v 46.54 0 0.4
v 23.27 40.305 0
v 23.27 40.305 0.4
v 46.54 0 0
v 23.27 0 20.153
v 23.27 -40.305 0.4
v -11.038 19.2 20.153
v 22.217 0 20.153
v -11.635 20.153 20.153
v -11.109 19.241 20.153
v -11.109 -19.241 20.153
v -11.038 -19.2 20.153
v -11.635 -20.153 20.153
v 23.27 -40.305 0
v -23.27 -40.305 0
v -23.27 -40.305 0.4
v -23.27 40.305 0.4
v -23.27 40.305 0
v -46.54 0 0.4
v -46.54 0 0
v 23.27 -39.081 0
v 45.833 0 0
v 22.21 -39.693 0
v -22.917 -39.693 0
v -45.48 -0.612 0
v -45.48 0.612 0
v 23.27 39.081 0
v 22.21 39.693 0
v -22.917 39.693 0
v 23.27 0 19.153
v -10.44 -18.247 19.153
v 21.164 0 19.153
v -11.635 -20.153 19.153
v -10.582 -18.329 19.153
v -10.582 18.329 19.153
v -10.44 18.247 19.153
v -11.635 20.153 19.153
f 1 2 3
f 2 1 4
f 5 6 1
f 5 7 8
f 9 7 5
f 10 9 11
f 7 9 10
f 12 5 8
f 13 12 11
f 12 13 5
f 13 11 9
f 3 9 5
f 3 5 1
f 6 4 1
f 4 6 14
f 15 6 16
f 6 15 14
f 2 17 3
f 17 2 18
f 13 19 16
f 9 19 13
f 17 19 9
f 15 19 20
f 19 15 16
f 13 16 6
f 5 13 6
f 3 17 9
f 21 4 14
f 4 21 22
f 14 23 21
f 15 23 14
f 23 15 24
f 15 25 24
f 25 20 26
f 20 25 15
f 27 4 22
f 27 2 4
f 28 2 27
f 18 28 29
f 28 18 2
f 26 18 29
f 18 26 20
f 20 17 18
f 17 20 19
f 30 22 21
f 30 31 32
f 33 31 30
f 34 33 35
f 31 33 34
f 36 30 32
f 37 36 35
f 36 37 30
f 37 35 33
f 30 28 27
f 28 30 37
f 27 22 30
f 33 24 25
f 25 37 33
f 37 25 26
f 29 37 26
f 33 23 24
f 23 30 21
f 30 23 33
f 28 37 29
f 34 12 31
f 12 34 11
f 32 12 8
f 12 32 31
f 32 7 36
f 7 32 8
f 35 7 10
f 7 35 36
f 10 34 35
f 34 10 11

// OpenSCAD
lenedge=57; // standard size of 3 order rubik's cube
h=1/4*sqrt(2)*lenedge; //height
upper_r= 2/3*sqrt(3)*h; 
lower_r=2*upper_r;

module desk() {
    hull(){
        cylinder(h=h, r=upper_r, $fn=3);
        cylinder(h=0.4, r=lower_r, $fn=6);
    }
}

difference() {
    desk();
    translate([0, 0, -1]) desk();
    cylinder(h=h+1, r1=1, r2=upper_r, $fn=3);


}
